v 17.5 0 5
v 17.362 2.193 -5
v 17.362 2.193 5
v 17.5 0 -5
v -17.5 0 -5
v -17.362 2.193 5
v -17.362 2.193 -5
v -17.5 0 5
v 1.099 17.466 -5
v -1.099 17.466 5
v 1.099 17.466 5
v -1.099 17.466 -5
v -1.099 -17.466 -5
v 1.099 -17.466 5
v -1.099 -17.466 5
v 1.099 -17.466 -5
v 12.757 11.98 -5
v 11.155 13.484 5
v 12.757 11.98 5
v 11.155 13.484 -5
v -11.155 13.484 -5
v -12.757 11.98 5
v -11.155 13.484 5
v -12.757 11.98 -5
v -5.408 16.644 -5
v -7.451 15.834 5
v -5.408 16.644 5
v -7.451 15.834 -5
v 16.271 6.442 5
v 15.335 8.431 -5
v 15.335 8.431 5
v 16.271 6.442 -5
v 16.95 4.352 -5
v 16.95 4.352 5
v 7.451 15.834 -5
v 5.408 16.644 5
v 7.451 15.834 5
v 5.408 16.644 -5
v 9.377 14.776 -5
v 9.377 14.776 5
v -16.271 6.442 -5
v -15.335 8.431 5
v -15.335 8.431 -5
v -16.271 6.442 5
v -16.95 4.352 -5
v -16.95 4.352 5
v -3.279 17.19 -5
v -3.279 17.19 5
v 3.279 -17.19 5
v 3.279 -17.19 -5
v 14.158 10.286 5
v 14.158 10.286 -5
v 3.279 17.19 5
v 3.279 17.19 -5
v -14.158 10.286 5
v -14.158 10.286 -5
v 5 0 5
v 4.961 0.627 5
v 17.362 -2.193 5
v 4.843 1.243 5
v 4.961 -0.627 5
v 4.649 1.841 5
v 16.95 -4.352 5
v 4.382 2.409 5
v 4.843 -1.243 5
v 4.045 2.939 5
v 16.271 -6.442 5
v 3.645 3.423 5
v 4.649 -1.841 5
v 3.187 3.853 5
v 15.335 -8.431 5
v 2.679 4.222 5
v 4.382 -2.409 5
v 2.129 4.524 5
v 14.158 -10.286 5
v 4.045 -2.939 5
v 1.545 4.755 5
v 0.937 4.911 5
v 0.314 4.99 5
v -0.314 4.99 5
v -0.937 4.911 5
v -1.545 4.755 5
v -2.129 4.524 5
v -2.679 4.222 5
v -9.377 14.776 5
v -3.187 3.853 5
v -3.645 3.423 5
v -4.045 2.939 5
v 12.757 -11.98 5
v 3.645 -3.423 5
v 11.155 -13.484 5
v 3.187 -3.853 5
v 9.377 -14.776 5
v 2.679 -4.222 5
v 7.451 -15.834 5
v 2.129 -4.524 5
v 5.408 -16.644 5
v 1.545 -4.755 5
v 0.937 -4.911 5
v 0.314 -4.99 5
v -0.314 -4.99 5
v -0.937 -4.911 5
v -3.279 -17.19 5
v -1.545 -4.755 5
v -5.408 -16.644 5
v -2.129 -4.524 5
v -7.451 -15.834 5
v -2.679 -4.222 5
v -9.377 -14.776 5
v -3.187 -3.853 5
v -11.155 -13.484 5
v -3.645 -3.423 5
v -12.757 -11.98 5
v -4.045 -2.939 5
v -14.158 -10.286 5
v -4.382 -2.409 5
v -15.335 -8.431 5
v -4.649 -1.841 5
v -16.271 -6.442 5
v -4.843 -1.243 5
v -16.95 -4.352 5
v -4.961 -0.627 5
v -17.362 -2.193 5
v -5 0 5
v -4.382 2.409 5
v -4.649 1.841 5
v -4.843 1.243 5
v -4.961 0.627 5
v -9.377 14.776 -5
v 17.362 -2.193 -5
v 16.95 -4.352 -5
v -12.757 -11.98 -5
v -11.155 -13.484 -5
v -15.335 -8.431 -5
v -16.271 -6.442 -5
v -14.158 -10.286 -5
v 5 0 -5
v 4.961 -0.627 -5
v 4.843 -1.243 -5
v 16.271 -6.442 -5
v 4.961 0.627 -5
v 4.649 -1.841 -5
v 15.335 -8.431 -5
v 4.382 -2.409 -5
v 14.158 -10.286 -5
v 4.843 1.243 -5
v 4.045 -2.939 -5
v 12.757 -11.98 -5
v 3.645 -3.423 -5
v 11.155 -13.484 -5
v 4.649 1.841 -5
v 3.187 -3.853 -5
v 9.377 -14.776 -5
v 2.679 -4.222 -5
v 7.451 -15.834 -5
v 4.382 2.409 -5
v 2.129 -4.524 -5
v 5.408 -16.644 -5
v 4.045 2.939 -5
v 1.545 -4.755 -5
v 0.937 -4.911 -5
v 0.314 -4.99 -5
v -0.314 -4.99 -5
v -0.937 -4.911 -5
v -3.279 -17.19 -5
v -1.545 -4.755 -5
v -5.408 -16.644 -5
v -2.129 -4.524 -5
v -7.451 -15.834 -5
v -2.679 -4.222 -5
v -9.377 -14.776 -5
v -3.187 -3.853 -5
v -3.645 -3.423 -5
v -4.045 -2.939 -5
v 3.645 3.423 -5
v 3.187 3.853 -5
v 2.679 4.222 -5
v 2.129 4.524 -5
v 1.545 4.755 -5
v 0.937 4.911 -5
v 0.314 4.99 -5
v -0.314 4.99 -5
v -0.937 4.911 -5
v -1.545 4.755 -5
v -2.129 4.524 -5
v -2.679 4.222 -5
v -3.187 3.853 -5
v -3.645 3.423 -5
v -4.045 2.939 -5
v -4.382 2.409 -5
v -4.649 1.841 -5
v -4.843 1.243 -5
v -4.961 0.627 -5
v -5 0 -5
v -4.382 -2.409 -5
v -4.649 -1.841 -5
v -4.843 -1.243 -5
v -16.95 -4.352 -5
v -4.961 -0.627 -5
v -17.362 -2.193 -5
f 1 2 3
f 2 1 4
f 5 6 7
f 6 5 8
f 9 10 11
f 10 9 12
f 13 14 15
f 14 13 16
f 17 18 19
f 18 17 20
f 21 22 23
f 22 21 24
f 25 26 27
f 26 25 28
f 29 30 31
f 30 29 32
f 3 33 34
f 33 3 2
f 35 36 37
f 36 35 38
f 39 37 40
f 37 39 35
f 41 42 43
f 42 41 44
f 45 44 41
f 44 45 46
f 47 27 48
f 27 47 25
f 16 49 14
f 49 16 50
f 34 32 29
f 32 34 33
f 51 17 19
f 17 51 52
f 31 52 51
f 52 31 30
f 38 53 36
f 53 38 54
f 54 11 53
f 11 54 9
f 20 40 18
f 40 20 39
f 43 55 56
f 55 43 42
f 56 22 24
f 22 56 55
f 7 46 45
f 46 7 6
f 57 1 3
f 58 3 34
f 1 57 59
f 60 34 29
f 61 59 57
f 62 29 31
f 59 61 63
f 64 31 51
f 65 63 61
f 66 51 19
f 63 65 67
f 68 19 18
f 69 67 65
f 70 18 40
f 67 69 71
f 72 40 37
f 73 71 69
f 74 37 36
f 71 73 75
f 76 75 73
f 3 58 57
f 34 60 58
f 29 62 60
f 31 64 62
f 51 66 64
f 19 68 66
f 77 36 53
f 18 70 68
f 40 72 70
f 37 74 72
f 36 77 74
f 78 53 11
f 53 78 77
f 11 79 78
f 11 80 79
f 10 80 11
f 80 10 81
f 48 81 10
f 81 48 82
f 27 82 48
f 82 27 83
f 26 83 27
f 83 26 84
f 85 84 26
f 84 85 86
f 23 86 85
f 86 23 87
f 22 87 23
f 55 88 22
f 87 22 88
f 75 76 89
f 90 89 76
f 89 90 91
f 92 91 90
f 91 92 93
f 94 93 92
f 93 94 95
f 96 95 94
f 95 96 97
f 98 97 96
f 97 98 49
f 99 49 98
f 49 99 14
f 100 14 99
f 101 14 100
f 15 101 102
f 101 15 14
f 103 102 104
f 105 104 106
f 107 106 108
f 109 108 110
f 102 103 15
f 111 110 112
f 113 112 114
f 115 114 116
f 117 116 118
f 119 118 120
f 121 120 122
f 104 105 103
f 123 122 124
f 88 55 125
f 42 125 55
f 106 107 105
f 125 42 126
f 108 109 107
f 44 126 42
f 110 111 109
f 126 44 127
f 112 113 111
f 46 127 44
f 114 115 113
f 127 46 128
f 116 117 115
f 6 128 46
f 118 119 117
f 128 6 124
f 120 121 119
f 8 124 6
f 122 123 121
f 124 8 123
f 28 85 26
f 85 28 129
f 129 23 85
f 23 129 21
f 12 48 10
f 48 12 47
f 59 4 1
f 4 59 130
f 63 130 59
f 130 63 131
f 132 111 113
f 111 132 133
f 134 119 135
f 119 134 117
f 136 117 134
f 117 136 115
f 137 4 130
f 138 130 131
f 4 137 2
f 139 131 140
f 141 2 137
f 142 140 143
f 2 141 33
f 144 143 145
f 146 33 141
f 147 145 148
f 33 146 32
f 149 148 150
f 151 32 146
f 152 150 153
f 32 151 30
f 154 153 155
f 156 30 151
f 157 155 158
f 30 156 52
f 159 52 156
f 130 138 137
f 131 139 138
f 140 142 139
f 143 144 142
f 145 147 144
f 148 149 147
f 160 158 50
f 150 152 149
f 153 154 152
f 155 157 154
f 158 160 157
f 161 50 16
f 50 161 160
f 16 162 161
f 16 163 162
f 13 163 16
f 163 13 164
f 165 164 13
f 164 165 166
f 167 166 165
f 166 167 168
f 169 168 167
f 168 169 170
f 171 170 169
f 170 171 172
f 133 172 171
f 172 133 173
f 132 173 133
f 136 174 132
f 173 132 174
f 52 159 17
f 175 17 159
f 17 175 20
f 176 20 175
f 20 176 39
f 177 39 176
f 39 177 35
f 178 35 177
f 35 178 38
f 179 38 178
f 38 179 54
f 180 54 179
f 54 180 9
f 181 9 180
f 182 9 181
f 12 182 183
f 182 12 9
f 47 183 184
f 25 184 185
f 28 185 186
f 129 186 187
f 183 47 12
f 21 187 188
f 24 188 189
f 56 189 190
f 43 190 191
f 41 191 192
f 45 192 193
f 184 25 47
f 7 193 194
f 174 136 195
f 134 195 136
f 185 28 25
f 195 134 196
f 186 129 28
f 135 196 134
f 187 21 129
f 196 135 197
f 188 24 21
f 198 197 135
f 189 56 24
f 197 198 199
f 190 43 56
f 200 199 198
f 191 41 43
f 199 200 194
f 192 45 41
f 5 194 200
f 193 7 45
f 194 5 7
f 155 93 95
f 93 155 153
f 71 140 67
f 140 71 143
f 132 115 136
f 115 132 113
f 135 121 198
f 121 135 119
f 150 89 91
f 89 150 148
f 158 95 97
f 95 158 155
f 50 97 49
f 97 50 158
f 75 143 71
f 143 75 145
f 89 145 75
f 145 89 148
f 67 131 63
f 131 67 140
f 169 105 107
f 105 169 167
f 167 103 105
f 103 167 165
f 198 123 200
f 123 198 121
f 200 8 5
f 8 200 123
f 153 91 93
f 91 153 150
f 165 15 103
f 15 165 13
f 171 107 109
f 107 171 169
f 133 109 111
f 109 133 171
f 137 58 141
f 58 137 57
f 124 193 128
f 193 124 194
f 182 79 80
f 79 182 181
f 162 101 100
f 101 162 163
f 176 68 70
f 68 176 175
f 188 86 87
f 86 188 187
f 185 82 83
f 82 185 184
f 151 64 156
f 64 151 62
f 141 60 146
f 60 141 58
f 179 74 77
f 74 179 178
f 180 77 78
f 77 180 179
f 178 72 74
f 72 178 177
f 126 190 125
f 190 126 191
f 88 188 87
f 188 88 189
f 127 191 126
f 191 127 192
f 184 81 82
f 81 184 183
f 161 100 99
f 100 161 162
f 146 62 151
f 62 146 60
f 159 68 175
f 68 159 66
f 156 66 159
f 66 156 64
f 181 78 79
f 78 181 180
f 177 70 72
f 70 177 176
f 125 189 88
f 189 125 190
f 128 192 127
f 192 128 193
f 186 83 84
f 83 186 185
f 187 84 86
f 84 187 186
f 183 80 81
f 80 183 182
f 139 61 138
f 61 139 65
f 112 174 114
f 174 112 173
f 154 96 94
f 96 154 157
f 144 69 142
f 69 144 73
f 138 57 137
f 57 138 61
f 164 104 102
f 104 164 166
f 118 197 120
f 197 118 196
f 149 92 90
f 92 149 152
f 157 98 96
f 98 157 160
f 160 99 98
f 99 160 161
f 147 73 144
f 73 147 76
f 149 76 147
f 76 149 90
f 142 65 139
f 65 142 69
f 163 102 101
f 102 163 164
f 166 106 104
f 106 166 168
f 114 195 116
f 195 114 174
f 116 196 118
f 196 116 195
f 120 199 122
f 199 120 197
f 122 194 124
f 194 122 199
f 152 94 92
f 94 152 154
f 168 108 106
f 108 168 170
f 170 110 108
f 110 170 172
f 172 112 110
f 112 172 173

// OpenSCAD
$fn = 50;


difference() {
	union() {
		translate(v = [0, 0, -5.0000000000]) {
			cylinder(h = 10, r = 17.5000000000);
		}
	}
	union() {
		translate(v = [0, 0, -100.0000000000]) {
			cylinder(h = 200, r = 5);
		}
	}
}
